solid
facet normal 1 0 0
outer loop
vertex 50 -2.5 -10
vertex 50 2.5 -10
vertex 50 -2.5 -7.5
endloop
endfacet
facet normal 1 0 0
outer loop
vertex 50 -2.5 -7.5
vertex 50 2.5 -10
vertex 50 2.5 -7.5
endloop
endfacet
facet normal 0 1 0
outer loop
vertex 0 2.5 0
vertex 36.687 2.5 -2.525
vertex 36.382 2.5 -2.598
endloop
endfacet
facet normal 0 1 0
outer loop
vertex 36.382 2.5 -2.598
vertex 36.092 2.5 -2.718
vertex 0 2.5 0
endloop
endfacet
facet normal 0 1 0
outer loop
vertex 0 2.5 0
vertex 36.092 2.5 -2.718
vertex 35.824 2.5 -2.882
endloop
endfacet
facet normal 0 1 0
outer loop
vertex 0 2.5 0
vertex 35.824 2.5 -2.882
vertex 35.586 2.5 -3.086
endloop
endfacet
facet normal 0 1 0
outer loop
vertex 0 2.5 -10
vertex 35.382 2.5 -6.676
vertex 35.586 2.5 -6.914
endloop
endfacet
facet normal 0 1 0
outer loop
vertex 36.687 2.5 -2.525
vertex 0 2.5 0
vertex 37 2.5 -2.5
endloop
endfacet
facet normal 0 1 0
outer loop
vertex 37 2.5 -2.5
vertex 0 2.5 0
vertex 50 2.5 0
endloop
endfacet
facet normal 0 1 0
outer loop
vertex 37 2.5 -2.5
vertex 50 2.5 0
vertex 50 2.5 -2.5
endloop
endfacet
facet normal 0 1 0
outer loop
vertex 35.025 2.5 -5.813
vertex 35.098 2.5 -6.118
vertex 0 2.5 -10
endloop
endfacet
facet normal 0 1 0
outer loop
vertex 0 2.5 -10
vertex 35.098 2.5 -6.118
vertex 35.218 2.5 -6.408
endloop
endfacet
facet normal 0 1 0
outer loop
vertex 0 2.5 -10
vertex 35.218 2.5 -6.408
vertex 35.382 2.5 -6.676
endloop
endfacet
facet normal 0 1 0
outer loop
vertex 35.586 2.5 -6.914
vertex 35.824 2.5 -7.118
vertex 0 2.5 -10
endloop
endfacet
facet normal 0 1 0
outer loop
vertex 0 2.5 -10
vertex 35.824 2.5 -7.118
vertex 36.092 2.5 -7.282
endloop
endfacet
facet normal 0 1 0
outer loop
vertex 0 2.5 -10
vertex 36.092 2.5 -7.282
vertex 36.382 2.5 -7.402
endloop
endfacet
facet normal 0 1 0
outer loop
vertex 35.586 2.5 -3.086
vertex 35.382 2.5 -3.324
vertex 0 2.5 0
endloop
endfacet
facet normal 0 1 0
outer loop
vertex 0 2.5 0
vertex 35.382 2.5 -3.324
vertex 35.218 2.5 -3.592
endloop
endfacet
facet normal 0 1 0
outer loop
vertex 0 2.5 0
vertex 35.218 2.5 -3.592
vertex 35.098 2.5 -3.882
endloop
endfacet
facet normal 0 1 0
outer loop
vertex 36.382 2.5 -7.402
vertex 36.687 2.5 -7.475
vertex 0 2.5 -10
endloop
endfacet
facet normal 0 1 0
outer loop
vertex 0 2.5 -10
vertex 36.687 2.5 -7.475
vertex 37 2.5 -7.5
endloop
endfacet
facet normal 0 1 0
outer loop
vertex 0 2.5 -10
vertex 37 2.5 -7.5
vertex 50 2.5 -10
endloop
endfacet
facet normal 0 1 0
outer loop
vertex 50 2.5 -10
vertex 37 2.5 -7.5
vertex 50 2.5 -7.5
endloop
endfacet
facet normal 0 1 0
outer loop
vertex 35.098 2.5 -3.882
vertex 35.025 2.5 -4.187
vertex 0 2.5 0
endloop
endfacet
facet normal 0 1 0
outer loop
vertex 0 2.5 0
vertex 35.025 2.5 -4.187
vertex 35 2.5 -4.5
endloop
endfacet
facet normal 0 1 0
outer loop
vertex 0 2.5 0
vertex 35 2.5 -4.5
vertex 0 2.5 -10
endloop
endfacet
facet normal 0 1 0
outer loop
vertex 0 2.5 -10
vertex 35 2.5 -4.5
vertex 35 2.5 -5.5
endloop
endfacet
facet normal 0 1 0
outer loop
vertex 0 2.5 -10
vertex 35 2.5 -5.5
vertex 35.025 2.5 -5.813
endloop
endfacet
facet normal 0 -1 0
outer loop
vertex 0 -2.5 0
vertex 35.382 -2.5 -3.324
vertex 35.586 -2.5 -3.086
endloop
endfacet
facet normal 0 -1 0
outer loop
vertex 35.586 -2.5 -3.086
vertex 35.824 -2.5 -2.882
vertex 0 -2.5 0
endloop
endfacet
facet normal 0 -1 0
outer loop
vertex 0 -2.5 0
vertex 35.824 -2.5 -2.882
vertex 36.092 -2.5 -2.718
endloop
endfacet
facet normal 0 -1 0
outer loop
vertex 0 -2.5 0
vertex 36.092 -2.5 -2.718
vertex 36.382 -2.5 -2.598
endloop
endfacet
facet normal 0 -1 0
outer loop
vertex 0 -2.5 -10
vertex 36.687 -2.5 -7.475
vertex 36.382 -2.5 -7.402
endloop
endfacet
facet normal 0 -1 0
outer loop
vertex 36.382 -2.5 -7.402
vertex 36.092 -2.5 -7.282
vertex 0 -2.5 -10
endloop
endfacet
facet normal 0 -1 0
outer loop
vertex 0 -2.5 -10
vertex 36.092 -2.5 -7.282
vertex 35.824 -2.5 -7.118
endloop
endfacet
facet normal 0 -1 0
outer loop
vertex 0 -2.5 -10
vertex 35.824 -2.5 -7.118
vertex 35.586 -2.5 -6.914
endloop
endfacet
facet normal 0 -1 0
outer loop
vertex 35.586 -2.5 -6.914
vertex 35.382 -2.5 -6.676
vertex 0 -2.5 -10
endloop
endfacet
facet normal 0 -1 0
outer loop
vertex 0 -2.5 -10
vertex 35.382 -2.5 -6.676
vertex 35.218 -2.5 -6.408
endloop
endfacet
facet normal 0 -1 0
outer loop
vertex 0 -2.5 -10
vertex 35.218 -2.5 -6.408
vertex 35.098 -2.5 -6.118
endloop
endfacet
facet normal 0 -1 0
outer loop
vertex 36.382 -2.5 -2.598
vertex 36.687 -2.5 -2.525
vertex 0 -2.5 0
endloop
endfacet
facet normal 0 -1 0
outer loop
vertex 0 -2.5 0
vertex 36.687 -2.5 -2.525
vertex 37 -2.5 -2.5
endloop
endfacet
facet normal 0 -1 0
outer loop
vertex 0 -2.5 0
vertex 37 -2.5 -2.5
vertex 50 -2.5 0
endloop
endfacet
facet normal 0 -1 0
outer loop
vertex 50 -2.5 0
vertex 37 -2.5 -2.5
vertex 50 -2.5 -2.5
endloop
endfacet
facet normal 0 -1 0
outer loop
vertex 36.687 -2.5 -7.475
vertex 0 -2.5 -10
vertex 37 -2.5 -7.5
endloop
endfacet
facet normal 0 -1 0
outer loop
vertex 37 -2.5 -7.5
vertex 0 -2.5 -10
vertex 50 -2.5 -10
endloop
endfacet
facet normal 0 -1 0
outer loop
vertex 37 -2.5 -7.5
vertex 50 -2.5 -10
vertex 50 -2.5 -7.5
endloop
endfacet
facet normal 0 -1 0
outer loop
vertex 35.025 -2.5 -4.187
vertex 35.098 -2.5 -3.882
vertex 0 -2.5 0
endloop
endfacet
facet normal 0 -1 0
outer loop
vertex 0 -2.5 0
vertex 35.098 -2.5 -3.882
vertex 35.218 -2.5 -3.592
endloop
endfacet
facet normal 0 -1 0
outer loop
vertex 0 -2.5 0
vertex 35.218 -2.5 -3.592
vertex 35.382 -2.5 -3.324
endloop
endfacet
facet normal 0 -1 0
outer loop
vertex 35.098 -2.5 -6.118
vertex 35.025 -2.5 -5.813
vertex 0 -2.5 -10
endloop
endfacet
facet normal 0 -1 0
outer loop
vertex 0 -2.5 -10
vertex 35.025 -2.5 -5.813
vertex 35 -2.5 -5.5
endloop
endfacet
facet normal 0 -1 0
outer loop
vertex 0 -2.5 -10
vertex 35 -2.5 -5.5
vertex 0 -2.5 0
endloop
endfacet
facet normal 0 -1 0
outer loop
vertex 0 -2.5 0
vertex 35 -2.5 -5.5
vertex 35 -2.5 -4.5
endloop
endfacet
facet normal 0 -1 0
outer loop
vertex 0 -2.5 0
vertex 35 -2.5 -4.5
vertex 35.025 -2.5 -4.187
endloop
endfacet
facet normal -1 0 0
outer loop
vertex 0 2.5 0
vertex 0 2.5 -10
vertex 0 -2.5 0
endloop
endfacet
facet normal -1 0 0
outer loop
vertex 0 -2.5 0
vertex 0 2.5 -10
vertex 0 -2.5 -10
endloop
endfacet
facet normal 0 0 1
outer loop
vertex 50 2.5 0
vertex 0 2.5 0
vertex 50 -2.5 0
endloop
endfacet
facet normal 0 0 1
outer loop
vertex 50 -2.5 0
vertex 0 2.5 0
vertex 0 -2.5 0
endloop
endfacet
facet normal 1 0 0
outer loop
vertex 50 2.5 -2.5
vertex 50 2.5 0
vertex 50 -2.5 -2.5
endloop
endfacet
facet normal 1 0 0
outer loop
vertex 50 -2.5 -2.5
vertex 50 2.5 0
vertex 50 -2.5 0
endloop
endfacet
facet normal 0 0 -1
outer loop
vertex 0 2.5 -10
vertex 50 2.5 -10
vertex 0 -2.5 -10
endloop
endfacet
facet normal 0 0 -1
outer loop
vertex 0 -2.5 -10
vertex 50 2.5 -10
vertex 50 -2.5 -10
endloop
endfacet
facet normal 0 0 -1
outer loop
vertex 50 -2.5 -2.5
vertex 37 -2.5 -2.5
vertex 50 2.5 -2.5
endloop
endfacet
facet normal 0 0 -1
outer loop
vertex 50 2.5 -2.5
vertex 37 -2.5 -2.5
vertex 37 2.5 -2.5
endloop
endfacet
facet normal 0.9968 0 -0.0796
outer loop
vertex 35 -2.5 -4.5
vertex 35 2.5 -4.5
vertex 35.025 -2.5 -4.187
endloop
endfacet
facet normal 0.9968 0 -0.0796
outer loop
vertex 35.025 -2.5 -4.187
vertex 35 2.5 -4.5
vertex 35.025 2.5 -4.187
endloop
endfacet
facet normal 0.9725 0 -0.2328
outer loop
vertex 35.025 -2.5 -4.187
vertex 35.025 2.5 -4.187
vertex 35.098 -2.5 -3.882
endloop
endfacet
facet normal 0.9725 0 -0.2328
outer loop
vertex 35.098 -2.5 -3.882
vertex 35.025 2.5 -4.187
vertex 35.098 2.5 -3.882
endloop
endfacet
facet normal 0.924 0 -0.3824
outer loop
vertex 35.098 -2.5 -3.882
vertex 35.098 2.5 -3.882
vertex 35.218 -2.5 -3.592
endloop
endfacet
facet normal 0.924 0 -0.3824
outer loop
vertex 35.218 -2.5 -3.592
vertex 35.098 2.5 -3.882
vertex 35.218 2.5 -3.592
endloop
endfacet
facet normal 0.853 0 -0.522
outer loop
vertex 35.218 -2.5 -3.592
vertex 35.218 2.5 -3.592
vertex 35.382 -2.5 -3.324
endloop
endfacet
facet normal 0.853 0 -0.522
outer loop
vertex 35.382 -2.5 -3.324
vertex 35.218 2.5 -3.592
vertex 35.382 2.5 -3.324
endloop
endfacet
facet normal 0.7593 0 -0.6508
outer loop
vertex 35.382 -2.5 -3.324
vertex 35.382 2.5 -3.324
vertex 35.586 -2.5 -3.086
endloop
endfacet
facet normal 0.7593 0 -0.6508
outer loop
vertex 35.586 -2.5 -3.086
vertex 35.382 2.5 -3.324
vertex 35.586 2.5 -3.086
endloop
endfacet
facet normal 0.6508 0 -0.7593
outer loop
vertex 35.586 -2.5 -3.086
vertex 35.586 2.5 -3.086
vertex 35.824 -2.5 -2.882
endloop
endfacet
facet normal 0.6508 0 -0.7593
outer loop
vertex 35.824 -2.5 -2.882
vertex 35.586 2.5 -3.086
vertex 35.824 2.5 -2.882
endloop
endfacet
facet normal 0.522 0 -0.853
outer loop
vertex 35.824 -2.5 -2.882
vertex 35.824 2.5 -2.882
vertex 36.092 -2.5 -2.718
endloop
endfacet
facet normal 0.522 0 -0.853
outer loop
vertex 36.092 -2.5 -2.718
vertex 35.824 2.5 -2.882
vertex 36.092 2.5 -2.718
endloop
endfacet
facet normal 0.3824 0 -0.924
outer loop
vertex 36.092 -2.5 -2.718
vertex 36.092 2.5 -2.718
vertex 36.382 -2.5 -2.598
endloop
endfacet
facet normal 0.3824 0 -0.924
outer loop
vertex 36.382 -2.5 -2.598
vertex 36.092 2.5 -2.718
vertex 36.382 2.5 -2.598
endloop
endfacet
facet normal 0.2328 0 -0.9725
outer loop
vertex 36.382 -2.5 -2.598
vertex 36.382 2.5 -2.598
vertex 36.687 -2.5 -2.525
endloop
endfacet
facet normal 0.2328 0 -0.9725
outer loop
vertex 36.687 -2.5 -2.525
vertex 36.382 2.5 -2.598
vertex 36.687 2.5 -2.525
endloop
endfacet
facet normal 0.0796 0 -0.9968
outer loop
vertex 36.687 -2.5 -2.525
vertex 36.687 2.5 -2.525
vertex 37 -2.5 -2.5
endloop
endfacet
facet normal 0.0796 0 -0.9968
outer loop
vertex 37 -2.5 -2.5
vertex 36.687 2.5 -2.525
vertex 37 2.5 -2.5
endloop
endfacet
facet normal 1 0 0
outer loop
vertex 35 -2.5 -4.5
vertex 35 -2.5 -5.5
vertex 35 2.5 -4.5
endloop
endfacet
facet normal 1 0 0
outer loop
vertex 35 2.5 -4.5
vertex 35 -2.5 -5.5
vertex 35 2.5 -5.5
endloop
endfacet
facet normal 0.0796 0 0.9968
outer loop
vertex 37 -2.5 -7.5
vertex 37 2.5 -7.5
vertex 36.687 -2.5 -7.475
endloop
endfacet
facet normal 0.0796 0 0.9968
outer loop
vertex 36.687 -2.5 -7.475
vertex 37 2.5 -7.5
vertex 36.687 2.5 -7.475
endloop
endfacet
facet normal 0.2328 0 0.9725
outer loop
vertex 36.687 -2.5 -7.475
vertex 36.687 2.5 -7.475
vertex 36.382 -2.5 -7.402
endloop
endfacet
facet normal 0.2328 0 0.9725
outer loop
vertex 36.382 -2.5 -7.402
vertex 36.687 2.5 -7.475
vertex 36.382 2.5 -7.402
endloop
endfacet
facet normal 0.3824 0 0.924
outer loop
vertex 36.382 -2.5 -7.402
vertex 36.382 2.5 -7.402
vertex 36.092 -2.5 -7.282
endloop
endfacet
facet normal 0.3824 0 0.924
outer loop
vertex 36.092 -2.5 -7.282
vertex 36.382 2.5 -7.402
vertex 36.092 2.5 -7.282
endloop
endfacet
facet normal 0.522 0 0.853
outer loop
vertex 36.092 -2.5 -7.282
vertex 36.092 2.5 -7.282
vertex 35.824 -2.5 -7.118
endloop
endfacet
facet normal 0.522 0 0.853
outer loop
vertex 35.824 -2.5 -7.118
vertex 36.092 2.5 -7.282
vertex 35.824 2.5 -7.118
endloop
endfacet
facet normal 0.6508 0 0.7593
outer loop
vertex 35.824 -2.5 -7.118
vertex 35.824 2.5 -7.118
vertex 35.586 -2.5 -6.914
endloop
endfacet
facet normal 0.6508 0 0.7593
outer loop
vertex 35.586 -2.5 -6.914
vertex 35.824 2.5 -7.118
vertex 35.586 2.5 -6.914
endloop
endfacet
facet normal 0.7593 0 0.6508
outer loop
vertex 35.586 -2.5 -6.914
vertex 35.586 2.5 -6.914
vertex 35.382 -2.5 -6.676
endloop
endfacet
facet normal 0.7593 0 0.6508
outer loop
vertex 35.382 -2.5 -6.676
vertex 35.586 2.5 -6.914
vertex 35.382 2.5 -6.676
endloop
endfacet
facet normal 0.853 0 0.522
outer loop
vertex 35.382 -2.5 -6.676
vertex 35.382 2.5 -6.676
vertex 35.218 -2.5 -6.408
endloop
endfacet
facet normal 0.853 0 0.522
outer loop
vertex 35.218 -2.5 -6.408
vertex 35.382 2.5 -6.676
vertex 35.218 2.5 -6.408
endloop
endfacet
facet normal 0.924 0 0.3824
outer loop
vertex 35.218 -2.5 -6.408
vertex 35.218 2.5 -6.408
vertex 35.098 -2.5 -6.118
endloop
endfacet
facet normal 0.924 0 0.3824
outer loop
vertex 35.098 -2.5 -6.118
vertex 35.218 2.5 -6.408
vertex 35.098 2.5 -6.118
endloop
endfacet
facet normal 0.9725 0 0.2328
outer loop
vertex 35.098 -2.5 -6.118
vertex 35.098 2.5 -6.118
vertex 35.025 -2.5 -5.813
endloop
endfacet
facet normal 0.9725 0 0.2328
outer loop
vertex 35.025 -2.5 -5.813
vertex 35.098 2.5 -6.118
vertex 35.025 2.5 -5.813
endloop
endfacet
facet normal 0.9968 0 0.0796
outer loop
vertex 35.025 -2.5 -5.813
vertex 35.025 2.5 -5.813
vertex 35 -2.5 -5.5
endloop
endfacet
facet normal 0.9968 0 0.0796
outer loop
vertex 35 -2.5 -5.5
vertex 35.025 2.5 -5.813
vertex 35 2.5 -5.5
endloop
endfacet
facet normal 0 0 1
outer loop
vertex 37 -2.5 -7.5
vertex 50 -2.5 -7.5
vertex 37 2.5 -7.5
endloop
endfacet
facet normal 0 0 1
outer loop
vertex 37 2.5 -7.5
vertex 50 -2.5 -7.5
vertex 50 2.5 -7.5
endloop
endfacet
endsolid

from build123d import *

# Parameters (mm, degrees)
CROQUIS1_W              = 50
CROQUIS1_H              = 10
SALIENTE_EXTRUIR1_DEPTH = 2.5
CORTAR_EXTRUIR1_DEPTH   = 52.23475383


with BuildPart() as part:
    # Croquis1 → Saliente-Extruir1 (new, symmetric)
    with BuildSketch(Plane(origin=(0, 0, 0), x_dir=(1, 0, 0), z_dir=(0, 1, 0))):
        with Locations((25, 5)):
            Rectangle(CROQUIS1_W, CROQUIS1_H)
    extrude(amount=SALIENTE_EXTRUIR1_DEPTH, both=True)

    # Croquis2 → Cortar-Extruir1 (cut, through all)
    with BuildSketch(Plane(origin=(0, 2.5, 0), x_dir=(1, 0, 0), z_dir=(0, 1, 0))):
        with BuildLine():
            Line((50, 7.5), (37, 7.5))
            ThreePointArc((37, 7.5), (35.585786438, 6.914213562), (35, 5.5))
            Line((35, 5.5), (35, 4.5))
            ThreePointArc((35, 4.5), (35.585786438, 3.085786438), (37, 2.5))
            Line((37, 2.5), (50, 2.5))
            Line((50, 2.5), (50, 7.5))
        make_face()
    extrude(amount=-CORTAR_EXTRUIR1_DEPTH, mode=Mode.SUBTRACT)


solid = part.part
